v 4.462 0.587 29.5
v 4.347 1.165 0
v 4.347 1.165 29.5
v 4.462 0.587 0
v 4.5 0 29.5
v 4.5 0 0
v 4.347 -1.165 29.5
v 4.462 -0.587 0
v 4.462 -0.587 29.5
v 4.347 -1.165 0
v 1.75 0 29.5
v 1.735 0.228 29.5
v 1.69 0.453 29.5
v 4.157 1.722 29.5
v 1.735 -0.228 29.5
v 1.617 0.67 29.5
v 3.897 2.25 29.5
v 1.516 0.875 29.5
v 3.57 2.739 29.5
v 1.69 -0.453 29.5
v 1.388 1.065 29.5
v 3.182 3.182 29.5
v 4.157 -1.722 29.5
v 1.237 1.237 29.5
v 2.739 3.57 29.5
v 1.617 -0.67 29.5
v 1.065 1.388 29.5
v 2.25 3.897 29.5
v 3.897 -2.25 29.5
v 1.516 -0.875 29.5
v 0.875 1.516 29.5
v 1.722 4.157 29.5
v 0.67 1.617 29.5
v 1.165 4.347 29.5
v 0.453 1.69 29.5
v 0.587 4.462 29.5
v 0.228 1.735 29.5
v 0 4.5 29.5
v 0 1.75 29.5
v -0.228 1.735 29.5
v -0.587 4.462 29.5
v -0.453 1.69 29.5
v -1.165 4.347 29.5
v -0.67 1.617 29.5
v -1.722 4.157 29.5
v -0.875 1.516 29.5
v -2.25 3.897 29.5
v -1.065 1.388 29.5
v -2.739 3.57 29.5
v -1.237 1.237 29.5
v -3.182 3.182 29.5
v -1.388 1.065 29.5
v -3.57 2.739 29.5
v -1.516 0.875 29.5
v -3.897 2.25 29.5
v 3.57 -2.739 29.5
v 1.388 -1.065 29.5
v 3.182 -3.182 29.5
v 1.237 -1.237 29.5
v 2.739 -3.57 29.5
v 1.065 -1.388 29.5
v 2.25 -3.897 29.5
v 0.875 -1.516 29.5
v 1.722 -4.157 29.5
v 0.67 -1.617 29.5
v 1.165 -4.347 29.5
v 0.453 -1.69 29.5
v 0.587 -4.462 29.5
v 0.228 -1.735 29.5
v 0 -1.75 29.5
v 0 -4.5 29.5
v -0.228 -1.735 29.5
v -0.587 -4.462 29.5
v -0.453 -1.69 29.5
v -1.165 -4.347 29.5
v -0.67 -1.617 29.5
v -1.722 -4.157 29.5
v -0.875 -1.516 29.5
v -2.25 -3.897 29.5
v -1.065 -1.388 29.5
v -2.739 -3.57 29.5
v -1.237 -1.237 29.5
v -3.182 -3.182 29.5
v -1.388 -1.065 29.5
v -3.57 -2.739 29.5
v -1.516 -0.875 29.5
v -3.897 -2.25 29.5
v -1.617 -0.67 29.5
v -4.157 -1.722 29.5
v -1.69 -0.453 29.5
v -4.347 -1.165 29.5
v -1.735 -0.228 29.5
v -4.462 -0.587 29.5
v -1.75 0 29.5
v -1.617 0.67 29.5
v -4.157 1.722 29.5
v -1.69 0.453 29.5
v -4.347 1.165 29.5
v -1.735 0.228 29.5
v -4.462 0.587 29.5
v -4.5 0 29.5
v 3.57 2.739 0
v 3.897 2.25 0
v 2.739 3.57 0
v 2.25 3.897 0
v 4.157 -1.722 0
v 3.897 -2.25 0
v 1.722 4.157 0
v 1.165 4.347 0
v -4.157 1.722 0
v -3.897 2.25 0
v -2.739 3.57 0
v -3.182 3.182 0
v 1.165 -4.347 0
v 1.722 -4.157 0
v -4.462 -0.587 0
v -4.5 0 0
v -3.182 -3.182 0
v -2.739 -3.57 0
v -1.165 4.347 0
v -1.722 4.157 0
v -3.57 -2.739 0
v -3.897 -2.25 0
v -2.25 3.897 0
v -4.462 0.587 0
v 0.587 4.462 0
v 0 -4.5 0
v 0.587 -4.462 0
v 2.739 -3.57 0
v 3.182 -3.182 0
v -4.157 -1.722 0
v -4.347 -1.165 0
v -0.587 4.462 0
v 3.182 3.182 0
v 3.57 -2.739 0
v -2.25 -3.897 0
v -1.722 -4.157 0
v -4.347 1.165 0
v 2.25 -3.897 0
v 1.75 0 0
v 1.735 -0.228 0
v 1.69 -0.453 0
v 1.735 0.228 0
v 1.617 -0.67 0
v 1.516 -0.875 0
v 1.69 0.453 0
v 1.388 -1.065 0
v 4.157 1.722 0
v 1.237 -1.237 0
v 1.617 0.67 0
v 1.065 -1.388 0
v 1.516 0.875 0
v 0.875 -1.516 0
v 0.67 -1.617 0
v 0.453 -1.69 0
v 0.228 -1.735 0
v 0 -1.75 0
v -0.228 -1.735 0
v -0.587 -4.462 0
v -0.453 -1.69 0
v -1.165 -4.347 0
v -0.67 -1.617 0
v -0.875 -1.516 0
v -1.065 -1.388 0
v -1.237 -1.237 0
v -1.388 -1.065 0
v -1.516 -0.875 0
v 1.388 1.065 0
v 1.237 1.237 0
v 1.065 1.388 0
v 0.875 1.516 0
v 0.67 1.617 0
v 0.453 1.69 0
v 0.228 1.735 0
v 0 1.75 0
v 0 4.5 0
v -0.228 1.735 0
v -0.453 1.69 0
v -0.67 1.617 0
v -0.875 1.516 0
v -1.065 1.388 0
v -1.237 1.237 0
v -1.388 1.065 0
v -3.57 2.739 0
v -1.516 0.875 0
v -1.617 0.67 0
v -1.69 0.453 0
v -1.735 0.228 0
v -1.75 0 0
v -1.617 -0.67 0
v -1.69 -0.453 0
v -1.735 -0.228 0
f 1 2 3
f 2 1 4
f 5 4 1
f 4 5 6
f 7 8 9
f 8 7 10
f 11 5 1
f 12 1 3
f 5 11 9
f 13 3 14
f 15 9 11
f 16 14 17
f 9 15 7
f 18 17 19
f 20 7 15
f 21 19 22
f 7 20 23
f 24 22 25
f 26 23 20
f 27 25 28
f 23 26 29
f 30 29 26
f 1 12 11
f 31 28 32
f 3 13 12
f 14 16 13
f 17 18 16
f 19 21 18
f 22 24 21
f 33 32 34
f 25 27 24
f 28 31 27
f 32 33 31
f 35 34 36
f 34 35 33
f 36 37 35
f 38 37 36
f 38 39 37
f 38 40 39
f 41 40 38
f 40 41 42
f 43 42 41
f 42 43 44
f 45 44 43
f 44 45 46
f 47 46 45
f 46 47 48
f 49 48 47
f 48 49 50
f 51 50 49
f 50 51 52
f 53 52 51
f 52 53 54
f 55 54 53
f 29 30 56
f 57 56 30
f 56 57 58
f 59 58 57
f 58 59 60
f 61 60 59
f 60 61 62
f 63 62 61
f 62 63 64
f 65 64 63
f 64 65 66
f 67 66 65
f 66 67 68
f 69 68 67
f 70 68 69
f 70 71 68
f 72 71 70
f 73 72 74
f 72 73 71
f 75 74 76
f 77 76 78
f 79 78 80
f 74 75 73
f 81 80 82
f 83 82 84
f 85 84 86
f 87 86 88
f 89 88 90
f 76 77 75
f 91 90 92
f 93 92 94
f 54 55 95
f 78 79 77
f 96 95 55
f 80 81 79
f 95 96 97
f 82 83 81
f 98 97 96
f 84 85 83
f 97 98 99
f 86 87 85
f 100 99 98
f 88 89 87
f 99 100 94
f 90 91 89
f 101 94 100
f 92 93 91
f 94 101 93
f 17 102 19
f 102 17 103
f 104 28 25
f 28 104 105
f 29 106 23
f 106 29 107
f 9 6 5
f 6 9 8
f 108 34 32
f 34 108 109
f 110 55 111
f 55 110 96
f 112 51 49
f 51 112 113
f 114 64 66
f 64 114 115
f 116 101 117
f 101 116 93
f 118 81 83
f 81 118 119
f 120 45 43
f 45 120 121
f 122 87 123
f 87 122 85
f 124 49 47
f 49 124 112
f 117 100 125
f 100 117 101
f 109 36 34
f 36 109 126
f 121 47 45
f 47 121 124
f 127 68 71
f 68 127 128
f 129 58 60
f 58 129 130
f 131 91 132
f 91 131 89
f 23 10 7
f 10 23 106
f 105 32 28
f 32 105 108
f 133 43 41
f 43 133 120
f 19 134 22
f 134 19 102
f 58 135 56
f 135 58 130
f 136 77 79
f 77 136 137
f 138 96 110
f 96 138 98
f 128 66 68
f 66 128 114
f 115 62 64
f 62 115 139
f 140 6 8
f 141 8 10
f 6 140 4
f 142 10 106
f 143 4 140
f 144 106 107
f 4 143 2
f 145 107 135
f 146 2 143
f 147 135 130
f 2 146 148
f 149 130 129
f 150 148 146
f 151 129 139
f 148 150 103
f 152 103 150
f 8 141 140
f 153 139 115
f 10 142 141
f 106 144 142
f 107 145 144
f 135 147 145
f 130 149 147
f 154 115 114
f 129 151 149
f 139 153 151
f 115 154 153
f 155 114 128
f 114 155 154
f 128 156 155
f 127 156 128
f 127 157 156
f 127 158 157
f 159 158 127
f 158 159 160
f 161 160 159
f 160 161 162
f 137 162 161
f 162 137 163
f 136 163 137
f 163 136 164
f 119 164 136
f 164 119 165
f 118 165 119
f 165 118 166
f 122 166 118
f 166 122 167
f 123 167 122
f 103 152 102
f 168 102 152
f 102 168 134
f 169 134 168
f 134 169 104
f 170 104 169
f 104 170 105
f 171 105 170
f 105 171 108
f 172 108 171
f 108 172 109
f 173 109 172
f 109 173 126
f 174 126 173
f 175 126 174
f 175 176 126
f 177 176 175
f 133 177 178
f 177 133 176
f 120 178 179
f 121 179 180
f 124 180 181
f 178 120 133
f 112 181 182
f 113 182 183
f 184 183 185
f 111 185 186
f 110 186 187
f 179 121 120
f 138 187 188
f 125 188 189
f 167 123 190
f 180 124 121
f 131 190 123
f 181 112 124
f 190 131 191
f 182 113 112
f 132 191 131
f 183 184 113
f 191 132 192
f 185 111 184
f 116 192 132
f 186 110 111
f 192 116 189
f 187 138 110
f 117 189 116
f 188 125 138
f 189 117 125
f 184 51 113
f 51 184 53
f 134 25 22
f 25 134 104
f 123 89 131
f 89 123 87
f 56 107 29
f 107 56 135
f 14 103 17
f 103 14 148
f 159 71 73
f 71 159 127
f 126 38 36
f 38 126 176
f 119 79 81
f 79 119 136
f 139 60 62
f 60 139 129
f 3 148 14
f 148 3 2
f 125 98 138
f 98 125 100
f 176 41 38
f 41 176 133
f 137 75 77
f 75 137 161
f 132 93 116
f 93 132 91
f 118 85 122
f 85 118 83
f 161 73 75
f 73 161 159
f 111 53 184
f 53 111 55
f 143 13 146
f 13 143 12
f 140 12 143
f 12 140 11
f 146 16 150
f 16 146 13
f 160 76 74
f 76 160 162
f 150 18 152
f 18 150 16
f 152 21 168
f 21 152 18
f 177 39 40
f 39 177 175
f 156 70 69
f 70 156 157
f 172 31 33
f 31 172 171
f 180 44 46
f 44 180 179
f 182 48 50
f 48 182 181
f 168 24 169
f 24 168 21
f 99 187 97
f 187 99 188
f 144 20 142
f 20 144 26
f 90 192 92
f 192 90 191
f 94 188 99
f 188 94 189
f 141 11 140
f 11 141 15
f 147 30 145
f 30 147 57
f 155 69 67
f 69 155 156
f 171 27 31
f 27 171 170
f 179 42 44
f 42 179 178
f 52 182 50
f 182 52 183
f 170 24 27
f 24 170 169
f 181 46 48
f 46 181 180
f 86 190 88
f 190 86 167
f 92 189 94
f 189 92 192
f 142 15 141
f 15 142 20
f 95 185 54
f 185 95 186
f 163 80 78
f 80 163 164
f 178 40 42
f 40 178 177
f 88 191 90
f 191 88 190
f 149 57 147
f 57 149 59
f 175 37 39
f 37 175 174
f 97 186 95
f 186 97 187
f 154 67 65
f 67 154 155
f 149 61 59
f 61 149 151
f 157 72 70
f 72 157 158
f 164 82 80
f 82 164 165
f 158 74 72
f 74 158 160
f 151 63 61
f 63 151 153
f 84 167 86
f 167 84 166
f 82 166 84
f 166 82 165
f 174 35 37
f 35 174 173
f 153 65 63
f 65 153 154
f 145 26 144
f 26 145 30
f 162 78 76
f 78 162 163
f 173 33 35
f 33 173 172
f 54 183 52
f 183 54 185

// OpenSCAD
// file: parameters.scad
// =============================================================================
// Gen-BU — nightly 2026-10-10 (physics_scorer, honest magpylib watts)
// New pole/coil ratio on a much bigger ring: twelve narrow 26.4° bobbins (r 52–82 mm, 13.5 mm build, 8.1 mm copper) under 8 poles pushed out to R66, so each coil spans 120° electrical with a short mean turn while the poles sit 52 mm apart (less pole-to-pole leakage) and move faster. 8p/12c was dismissed on earlier nights at 3.2 W because it was only scanned on the R50 ring; tonight it climbs steadily with ring radius (R50 3.39 → R57 4.58 → R59.5 5.18 → R66 6.08 W scan). Diametric Ø5 assists turned out to LOWER this layout, so none are fitted. A ring this big no longer fits a one-plate layout with disc endbells, so the endbells become two crossed 44 mm bar bearing bridges, which is what keeps it on one 410 mm plate.
// Clocking 0 deg (magnets N facing S) + D-flat keyed bore + index notch + flip-symmetric hole map.
// Windable 2-piece bobbin; turns = physics_scorer turns_fit; copper only between flanges.
// Steel back-iron: 2× Ø158 × 4.76 mm (3/16") mild-steel discs (steel_backiron_disc.dxf); magnets sit ON the steel
// (through-pockets) -> score with --back-iron. Night 2026-10-10.
// =============================================================================
topology            = "dual_rotor";

// --- Wire / winding (physics_scorer winding-fit) -------------------------------
wire_awg            = 26;
wire_od             = 0.45;     // insulated OD mm (bare 0.405)
fill_realistic      = 0.65;     // insulated-wire area / window (DENSE layered wind with a jig; scorer cap 0.65)
turns               = 446;       // = physics_scorer turns_fit (do NOT raise)
coil_former_type    = "bobbin";
coil_core_inset     = 13.50;     // radial copper build: hub = copper boundary inset by this
wind_build_axial    = 0.0;      // nothing proud of the flanges
wind_build_radial   = 0.0;

// --- Bobbin (base + lid) ---------------------------------------------------------
coil_id_r           = 52.00;    // copper boundary sector
coil_od_r           = 82.00;
span_deg            = 26.36;    // = pitch - 2*asin((wall+0.85)/coil_id_r) -> >=1.2 mm stator web
former_web          = 8.10;     // copper height between flanges (TALL copper: steel keeps Bz up)
flange_t            = 0.80;     // >= 0.8 mm FDM wall rule (tall winds push on the flanges)
wall                = 0.80;     // flange lip beyond copper
former_bare_h       = former_web + 2 * flange_t;
coil_envelope_h     = former_bare_h + 2 * wind_build_axial;
tab_w               = 7.0;
tab_len             = 7.0;
tab_h               = former_bare_h / 2;
pin_d               = 1.9;      // 1.75 mm filament locating pin
coil_mount_r        = coil_od_r + 0.2 + 4.0;
lead_y              = 1.6;
lead_slot_w         = 0.9;
lead_groove_d       = 0.6;

// --- Gap -------------------------------------------------------------------------
run_clear           = 0.50;     // rotor face -> flange
gap_spacer_h        = run_clear + wind_build_axial;
m2m                 = coil_envelope_h + 2 * run_clear;   // rotor face to rotor face (= gap_sleeve length)

// --- Stator ----------------------------------------------------------------------
coil_stations       = 12;
bay_clear           = 0.25;
stator_thick        = former_bare_h;                        // bobbins flush both faces
stator_od           = 182;
shaft_clear_stator  = 14.0;     // stator is static; gap sleeve OD 12 spins inside

// --- Rotor(s) --------------------------------------------------------------------
magnet_Br           = 1.43;     // N52
magnet_d_large      = 20.0;
magnet_h_large      = 5.0;      // one O20x5 per pocket
magnet_h_small      = 5.0;      // unused: no O5 pockets in this kit
halbach_magnetisation = "none";  // NO O5 assist magnets in this kit (scan: they lower the 4-pole score)
rotor_b_same_axis   = true;     // same-index magnets share one axis: N faces S across the gap
large_pocket_d      = 20.3;
small_pocket_d      = 5.3;
pocket_h            = 5.00;     // THROUGH the carrier: magnet back face sits on the steel disc (FLUSH seat: carrier = magnet height, magnet face level with the rotor face)
large_n             = 8;
R_large             = 66.0;
small_r_list        = [];       // no O5 pockets
carrier_od          = 158.0;
carrier_thick       = pocket_h;
hub_h               = 12.0;     // > steel_t + insert: radial set-screw clears the steel
hub_od              = 24.0;     // slim hub so the M4 brace rods fit at R~18 inside the coil ring
hub_insert_d        = 4.0;      // M3 heat-set insert, radial, bears on the D-flat
rotor_b_offset_deg  = 0.0;      // CLOCKING: magnets directly opposite
shaft_key           = "dflat";
dflat_depth         = 0.5;      // 8 mm shaft with 0.5 mm flat (7.5 across flat)
index_notch_d       = 3.0;

// --- Steel back-iron (buyable laser-cut) -------------------------------------------
steel_t             = 4.76;      // mild steel thickness (image method ignores it; sized from steel_flux.py so the return path stays well below saturation)
steel_center_hole   = 26.0;     // slips over the rotor hub (OD 24)
steel_od            = carrier_od;   // steel disc OD = rotor carrier OD

// --- Modular MAX interface ----------------------------------------------------------
shaft_bore          = 8.35;
dflat_x             = 4.0 - dflat_depth + (shaft_bore - 8.0) / 2;
bearing_d           = 21.85;
bearing_h           = 7.2;
m3_clear            = 3.5;
bolt_r_inner        = 30.0;     // M3 steel-disc clamp bolts (inside the magnet ring)
bolt_n_inner        = 4;
bolt_inner_angles   = [0, 90, 180, 270];
bolt_r_outer        = 44.0;     // second M3 steel-disc clamp ring
bolt_outer_angles   = [67.5, 112.5, 247.5, 292.5];
flange_bolt_r       = 85.0;     // frame rods: OUTSIDE the rotor OD (rotors spin inside them)
flange_bolt_n       = 4;
flange_bolt_offset  = 45.00;    // between coil stations -> never cuts a lead groove/tab
brace_r             = 18.0;
brace_d             = 4.3;      // temporary M4 jack rods (assembly only)
brace_n             = 4;
brace_angles        = [45, 135, 225, 315];          // flip-symmetric

spacer_pad_od       = 14.0;
spacer_pad_id       = m3_clear;
endbell_od          = 180.0;
endbell_thick       = 8.0;
endbell_shaft_clear = 10.0;
collar_h            = 10.0;
standoff_od         = 9.0;
frame_standoff_h    = run_clear + carrier_thick + hub_h + collar_h + 2.0;
sleeve_od           = 12.0;
plate_max_mm        = 410;

$fn = 64;
// main file
// Gen-BU — frame standoff tube between stator and an endbell, on each M3 frame rod (outside rotor OD).
// Print x4. Height = frame_standoff_h (rotor + steel + hub + collar + running clearance).
include <parameters.scad>;
$fn = 48;
difference() {
    cylinder(d=standoff_od, h=frame_standoff_h);
    translate([0, 0, -0.1]) cylinder(d=m3_clear, h=frame_standoff_h + 0.2);
}
